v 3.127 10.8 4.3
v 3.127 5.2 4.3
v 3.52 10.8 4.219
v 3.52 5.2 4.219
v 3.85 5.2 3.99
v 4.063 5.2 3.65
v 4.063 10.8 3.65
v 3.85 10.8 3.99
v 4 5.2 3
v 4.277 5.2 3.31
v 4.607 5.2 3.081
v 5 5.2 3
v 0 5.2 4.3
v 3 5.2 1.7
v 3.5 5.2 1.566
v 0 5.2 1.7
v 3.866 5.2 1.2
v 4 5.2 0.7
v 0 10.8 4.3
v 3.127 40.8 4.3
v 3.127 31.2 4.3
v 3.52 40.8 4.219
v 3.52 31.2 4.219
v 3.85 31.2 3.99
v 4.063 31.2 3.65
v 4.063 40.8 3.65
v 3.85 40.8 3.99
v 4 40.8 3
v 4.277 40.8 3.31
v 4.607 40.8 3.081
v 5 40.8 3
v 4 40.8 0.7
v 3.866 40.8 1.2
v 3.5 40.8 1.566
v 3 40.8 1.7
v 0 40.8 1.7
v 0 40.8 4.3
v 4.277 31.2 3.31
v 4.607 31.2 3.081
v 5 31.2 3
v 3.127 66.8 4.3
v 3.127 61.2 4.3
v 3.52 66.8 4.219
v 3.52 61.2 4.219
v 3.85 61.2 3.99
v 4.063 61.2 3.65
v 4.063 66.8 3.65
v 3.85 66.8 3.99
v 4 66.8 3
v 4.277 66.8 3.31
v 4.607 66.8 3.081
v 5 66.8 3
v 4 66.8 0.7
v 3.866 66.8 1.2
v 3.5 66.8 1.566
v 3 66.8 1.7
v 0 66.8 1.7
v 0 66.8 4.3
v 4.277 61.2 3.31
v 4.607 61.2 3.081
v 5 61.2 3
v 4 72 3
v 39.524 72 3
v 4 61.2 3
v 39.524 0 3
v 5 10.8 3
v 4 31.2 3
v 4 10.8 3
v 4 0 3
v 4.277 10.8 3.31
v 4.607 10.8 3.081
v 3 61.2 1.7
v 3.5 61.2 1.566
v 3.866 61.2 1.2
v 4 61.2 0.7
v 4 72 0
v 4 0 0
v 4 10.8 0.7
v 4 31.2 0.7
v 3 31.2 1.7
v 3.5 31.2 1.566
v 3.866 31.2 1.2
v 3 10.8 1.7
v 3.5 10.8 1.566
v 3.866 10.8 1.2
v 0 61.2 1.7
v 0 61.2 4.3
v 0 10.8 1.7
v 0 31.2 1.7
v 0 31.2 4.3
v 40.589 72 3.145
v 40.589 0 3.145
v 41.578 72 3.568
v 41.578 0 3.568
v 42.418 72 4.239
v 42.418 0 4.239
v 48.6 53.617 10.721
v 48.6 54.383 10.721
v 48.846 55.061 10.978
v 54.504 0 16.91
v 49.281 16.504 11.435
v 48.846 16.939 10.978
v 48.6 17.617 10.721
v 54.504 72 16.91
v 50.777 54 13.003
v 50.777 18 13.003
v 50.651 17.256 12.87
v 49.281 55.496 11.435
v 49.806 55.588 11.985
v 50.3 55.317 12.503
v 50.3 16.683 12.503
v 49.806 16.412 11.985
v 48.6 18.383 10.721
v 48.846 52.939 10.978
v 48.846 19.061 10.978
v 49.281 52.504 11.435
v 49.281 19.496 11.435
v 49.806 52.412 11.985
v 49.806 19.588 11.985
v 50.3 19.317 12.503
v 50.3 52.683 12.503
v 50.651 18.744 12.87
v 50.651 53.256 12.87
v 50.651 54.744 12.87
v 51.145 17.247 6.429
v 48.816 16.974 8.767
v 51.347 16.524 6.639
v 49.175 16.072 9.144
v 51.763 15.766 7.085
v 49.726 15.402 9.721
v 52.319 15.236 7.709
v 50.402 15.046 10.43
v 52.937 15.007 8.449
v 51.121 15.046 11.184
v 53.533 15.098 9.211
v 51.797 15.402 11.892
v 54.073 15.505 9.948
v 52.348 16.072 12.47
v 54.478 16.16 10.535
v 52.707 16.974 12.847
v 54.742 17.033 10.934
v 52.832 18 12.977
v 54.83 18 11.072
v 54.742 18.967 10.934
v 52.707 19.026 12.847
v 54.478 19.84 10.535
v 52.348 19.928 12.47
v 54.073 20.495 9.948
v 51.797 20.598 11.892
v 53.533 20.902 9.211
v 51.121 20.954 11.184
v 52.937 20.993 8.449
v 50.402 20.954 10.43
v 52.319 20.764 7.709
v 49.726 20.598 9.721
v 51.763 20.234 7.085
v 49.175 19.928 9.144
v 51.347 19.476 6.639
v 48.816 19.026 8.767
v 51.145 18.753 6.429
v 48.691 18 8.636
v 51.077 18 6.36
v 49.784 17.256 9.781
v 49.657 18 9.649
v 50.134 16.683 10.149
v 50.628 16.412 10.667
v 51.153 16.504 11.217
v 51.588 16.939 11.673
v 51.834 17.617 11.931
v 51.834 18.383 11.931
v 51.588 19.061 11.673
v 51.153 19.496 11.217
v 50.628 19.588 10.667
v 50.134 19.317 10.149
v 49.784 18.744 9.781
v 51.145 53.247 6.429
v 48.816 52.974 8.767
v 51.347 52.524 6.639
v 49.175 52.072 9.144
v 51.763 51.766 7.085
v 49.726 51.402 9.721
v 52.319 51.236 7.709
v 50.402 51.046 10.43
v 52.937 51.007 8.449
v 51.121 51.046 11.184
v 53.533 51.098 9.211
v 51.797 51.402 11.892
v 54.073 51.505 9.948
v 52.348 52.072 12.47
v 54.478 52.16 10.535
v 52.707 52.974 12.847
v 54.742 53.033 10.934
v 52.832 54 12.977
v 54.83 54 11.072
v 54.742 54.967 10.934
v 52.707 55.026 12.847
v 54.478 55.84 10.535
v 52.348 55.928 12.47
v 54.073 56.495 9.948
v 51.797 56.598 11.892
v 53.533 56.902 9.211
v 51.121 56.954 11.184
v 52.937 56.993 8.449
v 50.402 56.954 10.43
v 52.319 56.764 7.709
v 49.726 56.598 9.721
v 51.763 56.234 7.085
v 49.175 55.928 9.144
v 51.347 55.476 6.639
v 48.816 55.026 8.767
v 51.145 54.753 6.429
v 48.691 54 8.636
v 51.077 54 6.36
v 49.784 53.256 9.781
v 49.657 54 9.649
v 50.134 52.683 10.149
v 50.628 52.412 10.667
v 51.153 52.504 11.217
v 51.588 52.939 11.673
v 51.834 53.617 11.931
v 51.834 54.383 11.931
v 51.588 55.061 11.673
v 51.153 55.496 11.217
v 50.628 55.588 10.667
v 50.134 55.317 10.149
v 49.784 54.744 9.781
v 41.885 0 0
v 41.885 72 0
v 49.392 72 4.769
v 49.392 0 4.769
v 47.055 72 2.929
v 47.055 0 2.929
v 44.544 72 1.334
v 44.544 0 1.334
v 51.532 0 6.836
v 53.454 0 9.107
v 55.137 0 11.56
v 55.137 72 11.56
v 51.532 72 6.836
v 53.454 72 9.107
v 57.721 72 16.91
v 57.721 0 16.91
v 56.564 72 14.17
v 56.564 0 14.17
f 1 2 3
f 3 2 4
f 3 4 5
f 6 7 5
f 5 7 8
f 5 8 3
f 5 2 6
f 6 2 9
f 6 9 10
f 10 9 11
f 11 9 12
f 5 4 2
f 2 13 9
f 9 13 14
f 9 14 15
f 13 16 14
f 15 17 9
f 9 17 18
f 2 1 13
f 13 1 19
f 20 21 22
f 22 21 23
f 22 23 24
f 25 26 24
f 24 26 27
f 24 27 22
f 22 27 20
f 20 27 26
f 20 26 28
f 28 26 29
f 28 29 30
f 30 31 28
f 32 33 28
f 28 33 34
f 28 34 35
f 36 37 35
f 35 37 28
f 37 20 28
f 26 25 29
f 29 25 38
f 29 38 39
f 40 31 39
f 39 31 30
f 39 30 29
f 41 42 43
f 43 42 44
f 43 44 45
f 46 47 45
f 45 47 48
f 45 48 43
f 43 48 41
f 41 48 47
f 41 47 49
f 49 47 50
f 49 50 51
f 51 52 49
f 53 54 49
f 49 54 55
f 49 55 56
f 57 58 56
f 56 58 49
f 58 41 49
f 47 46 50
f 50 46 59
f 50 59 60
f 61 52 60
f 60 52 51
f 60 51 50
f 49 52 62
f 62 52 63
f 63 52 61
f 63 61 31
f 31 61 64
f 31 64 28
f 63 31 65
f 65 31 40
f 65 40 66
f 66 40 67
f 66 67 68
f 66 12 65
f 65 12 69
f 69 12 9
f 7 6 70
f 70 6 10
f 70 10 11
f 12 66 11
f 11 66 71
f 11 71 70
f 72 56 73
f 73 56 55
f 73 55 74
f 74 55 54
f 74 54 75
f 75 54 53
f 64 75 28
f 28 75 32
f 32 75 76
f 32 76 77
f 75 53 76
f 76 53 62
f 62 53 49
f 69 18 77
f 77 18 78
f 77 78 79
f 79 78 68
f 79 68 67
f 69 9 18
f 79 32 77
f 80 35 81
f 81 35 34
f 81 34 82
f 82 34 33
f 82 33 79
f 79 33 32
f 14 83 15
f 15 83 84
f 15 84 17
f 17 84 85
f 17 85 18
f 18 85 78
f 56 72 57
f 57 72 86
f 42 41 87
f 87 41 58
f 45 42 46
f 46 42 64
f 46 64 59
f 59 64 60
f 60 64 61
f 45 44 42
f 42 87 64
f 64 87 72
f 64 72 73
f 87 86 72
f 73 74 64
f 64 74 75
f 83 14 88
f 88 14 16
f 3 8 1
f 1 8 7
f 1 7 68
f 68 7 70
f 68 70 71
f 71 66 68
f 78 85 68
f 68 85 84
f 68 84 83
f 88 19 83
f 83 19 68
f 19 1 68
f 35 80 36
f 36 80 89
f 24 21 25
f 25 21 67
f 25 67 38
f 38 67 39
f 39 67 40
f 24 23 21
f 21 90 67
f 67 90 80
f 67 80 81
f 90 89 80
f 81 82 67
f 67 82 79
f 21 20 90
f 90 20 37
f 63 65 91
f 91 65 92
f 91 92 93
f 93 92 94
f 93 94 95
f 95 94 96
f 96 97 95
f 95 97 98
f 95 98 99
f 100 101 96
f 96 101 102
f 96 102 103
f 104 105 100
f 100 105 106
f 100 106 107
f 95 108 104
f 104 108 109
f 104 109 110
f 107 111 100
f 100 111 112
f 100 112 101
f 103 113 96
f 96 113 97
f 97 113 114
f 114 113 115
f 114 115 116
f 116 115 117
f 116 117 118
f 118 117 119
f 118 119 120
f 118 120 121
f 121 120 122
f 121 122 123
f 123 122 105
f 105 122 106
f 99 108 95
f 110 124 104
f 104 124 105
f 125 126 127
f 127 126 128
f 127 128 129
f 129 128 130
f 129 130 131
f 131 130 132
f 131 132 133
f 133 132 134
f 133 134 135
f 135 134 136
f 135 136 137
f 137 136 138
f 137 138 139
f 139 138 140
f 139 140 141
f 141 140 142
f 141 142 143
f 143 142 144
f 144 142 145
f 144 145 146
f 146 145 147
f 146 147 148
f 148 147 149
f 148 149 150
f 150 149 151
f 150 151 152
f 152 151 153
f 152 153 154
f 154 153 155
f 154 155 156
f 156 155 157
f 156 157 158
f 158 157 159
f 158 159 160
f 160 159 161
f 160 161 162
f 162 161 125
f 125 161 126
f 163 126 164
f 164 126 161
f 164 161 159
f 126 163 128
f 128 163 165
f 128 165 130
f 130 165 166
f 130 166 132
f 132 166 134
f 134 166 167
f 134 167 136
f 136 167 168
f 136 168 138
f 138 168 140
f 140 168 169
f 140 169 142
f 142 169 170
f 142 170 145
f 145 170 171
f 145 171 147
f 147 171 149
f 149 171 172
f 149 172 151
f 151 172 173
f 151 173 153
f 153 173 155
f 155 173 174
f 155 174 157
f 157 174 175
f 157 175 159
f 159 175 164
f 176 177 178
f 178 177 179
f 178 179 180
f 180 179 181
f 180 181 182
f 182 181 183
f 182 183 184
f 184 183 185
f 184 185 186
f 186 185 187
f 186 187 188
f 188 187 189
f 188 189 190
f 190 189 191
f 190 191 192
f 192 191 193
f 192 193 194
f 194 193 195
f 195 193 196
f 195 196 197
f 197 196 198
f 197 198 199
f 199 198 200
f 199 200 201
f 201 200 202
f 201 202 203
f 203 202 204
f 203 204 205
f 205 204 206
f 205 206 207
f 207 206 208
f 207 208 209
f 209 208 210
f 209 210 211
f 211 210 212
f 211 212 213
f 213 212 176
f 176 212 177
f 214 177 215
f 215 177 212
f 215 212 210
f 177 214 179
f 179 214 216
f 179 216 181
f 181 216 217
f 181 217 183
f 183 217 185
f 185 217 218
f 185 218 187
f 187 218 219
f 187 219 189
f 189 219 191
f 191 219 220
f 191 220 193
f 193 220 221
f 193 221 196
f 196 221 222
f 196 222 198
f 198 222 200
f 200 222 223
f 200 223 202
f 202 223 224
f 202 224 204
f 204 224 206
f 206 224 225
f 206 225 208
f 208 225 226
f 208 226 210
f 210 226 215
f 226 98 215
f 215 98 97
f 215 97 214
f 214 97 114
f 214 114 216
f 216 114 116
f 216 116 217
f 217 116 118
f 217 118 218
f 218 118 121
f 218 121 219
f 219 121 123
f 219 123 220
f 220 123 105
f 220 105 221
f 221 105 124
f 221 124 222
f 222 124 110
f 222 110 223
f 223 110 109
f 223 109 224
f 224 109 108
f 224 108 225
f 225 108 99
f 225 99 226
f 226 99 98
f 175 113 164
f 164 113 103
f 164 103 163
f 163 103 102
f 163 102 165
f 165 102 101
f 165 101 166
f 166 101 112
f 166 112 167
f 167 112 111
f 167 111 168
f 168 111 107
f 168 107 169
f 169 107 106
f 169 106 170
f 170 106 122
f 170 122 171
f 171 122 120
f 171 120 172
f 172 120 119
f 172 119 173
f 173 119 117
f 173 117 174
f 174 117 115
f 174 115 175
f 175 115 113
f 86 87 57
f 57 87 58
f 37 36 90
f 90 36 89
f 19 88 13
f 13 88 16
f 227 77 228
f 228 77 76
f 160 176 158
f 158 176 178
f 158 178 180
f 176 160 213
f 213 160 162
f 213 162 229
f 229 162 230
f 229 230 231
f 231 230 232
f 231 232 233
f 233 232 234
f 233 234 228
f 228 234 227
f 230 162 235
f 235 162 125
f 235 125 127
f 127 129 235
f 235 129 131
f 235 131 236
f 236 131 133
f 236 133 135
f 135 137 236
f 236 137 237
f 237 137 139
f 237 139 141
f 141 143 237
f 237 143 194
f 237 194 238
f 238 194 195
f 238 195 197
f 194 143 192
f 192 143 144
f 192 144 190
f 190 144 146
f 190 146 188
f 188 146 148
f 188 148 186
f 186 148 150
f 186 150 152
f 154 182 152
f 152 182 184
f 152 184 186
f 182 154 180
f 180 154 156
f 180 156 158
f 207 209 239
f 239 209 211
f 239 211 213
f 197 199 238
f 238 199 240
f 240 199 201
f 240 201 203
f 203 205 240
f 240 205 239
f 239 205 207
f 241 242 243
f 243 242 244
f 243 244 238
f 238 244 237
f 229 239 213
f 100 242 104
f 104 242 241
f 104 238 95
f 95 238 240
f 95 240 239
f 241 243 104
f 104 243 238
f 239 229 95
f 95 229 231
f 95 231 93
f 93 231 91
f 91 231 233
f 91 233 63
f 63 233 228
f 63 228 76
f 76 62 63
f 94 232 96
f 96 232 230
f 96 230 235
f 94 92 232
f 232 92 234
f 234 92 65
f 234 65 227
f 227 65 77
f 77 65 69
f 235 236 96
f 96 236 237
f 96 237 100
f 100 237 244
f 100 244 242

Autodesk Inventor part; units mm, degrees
ref_plane "YZ Plane" through (0, 0, 0) normal (1, 0, 0) x (0, 1, 0)
ref_plane "XZ Plane" through (0, 0, 0) normal (0, 1, 0) x (-1, 0, 0)
sketch "Szkic1" plane through (0, 0, 0) normal (0, 1, 0) x (-1, 0, 0)
  arc A0 (-57.7209, 16.9104) -> (-41.8849, 0) centre (-30, 27) ccw
  line L0 (-41.8849, 0) -> (-4, 0)
  line L1 (-4, 0) -> (-4, 3)
  line L2 (-57.7209, 16.9104) -> (-54.5041, 16.9104)
  line L3 (-54.5041, 16.9104) -> (-41.2361, 3)
  line L4 (-41.2361, 3) -> (-4, 3)
  line L5 (-4, 1.5) -> (-4, 3)
  dimension "d3" = 27
  dimension "d4" = 29.5
  dimension "d8" = 37.8849
  dimension "d9" = 37.2361
  dimension "d10" = 19.2234
extrude "Wyciągnięcie proste1" add sketch "Szkic1" along normal blind 72
sketch "Szkic3" plane through (4, 0, 0) normal (-1, 0, 0) x (0, 0, 1)
  line L0 (0, 0) -> (3, 0) projected
  line L1 (3, 0) -> (3, 72) projected
  line L2 (0, 72) -> (3, 72) projected
  line L3 (0, 0) -> (0, 72) projected
  line L4 (1.5, 5) -> (4.5, 5)
  line L5 (4.5, 5) -> (4.5, 11)
  line L6 (4.5, 11) -> (1.5, 11)
  line L7 (1.5, 11) -> (1.5, 5)
  line L8 (0, 0) -> (0, 72) projected
  line L9 (0, 36) -> (-11, 36)
  line L10 (1.5, 31) -> (4.5, 31)
  line L11 (4.5, 31) -> (4.5, 41)
  line L12 (4.5, 41) -> (1.5, 41)
  line L13 (1.5, 41) -> (1.5, 31)
  line L14 (1.5, 67) -> (4.5, 67)
  line L15 (4.5, 67) -> (4.5, 61)
  line L16 (4.5, 61) -> (1.5, 61)
  line L17 (1.5, 61) -> (1.5, 67)
  point P0 (1.5, 36)
  point P1 (0, 36)
  dimension "d15" = 3
  dimension "d16" = 6
  dimension "d17" = 4.5
  dimension "d18" = 5
  dimension "d19" = 3
  dimension "d20" = 10
  dimension "d21" = 4.5
extrude "Wyciągnięcie proste2" add sketch "Szkic3" along normal blind 4 contours L4 L7 L6 L1 | L1 L6 L5 L4 | L10 L13 L12 L1 | L1 L12 L11 L10 | L14 L15 L16 L1 | L1 L16 L17 L14
sketch "Szkic4" plane through (54.5041, 0, 16.9104) normal (-0.7236, 0, 0.6902) x (0.6902, 0, 0.7236)
  line L0 (-19.2234, 0) -> (0, 0) projected
  line L1 (0, 0) -> (0, 72) projected
  line L2 (-19.2234, 72) -> (0, 72) projected
  line L3 (-19.2234, 0) -> (-19.2234, 72) projected
  line L4 (-19.2234, 36) -> (0, 36)
  circle A0 centre (-7, 18) radius 1.6
  circle A1 centre (-7, 54) radius 1.6
  point P0 (-49.8554, 0)
  point P1 (-9.6117, 36)
  dimension "d26" = 3.2
  dimension "d27" = 36
  dimension "d34" = 7
extrude "Wyciągnięcie proste3" cut sketch "Szkic4" against normal through all contours A0 | A1
ref_plane "Płaszczyzna konstrukcyjna1" through (51.3468, 0, 6.6391) normal (-0.7236, 0, 0.6902) x (0.6902, 0, 0.7236)
sketch "Szkic5" plane through (51.3468, 0, 6.6391) normal (-0.7236, 0, 0.6902) x (0.6902, 0, 0.7236)
  circle A0 centre (2.6117, 54) radius 1.6 projected
  circle A1 centre (2.6117, 18) radius 1.6 projected
  line L0 (-9.6117, 0) -> (9.6117, 0) projected
  line L1 (9.6117, 0) -> (9.6117, 72) projected
  line L2 (-9.6117, 72) -> (9.6117, 72) projected
  line L3 (-9.6117, 0) -> (-9.6117, 72) projected
  circle A2 centre (2.6117, 54) radius 1.6 projected
  circle A3 centre (2.6117, 54) radius 3
  circle A4 centre (2.6117, 18) radius 1.6 projected
  circle A5 centre (2.6117, 18) radius 3
  point P0 (-40.2437, 0)
  dimension "d30" = 6
  dimension "d31" = 6
extrude "Wyciągnięcie proste4" cut sketch "Szkic5" along normal blind 3.3 contours A0 | A1 | A3 | A5
fillet "Zaokrąglenie3" radius 4 1 edges at (41.2361, 36, 3)
sketch "Szkic6" plane through (0, 0, 0) normal (-1, 0, 0) x (0, 0, 1)
  line L0 (4.5, 11) -> (1.5, 11) projected
  line L1 (1.5, 11) -> (1.5, 5) projected
  line L2 (1.5, 5) -> (4.5, 5) projected
  line L3 (4.5, 5) -> (4.5, 11) projected
  line L4 (4.5, 41) -> (1.5, 41) projected
  line L5 (1.5, 41) -> (1.5, 31) projected
  line L6 (1.5, 31) -> (4.5, 31) projected
  line L7 (4.5, 31) -> (4.5, 41) projected
  line L8 (4.5, 67) -> (1.5, 67) projected
  line L9 (1.5, 67) -> (1.5, 61) projected
  line L10 (1.5, 61) -> (4.5, 61) projected
  line L11 (4.5, 61) -> (4.5, 67) projected
  line L12 (1.7, 61.2) -> (1.7, 66.8)
  line L13 (1.7, 66.8) -> (4.3, 66.8)
  line L14 (4.3, 66.8) -> (4.3, 61.2)
  line L15 (4.3, 61.2) -> (1.7, 61.2)
  line L16 (4.3, 40.8) -> (1.7, 40.8)
  line L17 (1.7, 40.8) -> (1.7, 31.2)
  line L18 (1.7, 31.2) -> (4.3, 31.2)
  line L19 (4.3, 31.2) -> (4.3, 40.8)
  line L20 (4.3, 10.8) -> (1.7, 10.8)
  line L21 (1.7, 10.8) -> (1.7, 5.2)
  line L22 (1.7, 5.2) -> (4.3, 5.2)
  line L23 (4.3, 5.2) -> (4.3, 10.8)
  point P0 (0, 0)
  dimension "d36" = 0.2
  dimension "d37" = 0.2
  dimension "d38" = 0.2
extrude "Wyciągnięcie proste5" cut sketch "Szkic6" against normal up to surface (4 mm away)
fillet "Zaokrąglenie4" radius 1 9 edges at (4, 8, 1.7) (4, 36, 1.7) (4, 64, 1.7) (4, 36, 3) (4, 8, 3) (4, 64, 3) (4, 64, 4.3) (4, 36, 4.3) (4, 8, 4.3)
properties part number "pokrywka_baterii"
